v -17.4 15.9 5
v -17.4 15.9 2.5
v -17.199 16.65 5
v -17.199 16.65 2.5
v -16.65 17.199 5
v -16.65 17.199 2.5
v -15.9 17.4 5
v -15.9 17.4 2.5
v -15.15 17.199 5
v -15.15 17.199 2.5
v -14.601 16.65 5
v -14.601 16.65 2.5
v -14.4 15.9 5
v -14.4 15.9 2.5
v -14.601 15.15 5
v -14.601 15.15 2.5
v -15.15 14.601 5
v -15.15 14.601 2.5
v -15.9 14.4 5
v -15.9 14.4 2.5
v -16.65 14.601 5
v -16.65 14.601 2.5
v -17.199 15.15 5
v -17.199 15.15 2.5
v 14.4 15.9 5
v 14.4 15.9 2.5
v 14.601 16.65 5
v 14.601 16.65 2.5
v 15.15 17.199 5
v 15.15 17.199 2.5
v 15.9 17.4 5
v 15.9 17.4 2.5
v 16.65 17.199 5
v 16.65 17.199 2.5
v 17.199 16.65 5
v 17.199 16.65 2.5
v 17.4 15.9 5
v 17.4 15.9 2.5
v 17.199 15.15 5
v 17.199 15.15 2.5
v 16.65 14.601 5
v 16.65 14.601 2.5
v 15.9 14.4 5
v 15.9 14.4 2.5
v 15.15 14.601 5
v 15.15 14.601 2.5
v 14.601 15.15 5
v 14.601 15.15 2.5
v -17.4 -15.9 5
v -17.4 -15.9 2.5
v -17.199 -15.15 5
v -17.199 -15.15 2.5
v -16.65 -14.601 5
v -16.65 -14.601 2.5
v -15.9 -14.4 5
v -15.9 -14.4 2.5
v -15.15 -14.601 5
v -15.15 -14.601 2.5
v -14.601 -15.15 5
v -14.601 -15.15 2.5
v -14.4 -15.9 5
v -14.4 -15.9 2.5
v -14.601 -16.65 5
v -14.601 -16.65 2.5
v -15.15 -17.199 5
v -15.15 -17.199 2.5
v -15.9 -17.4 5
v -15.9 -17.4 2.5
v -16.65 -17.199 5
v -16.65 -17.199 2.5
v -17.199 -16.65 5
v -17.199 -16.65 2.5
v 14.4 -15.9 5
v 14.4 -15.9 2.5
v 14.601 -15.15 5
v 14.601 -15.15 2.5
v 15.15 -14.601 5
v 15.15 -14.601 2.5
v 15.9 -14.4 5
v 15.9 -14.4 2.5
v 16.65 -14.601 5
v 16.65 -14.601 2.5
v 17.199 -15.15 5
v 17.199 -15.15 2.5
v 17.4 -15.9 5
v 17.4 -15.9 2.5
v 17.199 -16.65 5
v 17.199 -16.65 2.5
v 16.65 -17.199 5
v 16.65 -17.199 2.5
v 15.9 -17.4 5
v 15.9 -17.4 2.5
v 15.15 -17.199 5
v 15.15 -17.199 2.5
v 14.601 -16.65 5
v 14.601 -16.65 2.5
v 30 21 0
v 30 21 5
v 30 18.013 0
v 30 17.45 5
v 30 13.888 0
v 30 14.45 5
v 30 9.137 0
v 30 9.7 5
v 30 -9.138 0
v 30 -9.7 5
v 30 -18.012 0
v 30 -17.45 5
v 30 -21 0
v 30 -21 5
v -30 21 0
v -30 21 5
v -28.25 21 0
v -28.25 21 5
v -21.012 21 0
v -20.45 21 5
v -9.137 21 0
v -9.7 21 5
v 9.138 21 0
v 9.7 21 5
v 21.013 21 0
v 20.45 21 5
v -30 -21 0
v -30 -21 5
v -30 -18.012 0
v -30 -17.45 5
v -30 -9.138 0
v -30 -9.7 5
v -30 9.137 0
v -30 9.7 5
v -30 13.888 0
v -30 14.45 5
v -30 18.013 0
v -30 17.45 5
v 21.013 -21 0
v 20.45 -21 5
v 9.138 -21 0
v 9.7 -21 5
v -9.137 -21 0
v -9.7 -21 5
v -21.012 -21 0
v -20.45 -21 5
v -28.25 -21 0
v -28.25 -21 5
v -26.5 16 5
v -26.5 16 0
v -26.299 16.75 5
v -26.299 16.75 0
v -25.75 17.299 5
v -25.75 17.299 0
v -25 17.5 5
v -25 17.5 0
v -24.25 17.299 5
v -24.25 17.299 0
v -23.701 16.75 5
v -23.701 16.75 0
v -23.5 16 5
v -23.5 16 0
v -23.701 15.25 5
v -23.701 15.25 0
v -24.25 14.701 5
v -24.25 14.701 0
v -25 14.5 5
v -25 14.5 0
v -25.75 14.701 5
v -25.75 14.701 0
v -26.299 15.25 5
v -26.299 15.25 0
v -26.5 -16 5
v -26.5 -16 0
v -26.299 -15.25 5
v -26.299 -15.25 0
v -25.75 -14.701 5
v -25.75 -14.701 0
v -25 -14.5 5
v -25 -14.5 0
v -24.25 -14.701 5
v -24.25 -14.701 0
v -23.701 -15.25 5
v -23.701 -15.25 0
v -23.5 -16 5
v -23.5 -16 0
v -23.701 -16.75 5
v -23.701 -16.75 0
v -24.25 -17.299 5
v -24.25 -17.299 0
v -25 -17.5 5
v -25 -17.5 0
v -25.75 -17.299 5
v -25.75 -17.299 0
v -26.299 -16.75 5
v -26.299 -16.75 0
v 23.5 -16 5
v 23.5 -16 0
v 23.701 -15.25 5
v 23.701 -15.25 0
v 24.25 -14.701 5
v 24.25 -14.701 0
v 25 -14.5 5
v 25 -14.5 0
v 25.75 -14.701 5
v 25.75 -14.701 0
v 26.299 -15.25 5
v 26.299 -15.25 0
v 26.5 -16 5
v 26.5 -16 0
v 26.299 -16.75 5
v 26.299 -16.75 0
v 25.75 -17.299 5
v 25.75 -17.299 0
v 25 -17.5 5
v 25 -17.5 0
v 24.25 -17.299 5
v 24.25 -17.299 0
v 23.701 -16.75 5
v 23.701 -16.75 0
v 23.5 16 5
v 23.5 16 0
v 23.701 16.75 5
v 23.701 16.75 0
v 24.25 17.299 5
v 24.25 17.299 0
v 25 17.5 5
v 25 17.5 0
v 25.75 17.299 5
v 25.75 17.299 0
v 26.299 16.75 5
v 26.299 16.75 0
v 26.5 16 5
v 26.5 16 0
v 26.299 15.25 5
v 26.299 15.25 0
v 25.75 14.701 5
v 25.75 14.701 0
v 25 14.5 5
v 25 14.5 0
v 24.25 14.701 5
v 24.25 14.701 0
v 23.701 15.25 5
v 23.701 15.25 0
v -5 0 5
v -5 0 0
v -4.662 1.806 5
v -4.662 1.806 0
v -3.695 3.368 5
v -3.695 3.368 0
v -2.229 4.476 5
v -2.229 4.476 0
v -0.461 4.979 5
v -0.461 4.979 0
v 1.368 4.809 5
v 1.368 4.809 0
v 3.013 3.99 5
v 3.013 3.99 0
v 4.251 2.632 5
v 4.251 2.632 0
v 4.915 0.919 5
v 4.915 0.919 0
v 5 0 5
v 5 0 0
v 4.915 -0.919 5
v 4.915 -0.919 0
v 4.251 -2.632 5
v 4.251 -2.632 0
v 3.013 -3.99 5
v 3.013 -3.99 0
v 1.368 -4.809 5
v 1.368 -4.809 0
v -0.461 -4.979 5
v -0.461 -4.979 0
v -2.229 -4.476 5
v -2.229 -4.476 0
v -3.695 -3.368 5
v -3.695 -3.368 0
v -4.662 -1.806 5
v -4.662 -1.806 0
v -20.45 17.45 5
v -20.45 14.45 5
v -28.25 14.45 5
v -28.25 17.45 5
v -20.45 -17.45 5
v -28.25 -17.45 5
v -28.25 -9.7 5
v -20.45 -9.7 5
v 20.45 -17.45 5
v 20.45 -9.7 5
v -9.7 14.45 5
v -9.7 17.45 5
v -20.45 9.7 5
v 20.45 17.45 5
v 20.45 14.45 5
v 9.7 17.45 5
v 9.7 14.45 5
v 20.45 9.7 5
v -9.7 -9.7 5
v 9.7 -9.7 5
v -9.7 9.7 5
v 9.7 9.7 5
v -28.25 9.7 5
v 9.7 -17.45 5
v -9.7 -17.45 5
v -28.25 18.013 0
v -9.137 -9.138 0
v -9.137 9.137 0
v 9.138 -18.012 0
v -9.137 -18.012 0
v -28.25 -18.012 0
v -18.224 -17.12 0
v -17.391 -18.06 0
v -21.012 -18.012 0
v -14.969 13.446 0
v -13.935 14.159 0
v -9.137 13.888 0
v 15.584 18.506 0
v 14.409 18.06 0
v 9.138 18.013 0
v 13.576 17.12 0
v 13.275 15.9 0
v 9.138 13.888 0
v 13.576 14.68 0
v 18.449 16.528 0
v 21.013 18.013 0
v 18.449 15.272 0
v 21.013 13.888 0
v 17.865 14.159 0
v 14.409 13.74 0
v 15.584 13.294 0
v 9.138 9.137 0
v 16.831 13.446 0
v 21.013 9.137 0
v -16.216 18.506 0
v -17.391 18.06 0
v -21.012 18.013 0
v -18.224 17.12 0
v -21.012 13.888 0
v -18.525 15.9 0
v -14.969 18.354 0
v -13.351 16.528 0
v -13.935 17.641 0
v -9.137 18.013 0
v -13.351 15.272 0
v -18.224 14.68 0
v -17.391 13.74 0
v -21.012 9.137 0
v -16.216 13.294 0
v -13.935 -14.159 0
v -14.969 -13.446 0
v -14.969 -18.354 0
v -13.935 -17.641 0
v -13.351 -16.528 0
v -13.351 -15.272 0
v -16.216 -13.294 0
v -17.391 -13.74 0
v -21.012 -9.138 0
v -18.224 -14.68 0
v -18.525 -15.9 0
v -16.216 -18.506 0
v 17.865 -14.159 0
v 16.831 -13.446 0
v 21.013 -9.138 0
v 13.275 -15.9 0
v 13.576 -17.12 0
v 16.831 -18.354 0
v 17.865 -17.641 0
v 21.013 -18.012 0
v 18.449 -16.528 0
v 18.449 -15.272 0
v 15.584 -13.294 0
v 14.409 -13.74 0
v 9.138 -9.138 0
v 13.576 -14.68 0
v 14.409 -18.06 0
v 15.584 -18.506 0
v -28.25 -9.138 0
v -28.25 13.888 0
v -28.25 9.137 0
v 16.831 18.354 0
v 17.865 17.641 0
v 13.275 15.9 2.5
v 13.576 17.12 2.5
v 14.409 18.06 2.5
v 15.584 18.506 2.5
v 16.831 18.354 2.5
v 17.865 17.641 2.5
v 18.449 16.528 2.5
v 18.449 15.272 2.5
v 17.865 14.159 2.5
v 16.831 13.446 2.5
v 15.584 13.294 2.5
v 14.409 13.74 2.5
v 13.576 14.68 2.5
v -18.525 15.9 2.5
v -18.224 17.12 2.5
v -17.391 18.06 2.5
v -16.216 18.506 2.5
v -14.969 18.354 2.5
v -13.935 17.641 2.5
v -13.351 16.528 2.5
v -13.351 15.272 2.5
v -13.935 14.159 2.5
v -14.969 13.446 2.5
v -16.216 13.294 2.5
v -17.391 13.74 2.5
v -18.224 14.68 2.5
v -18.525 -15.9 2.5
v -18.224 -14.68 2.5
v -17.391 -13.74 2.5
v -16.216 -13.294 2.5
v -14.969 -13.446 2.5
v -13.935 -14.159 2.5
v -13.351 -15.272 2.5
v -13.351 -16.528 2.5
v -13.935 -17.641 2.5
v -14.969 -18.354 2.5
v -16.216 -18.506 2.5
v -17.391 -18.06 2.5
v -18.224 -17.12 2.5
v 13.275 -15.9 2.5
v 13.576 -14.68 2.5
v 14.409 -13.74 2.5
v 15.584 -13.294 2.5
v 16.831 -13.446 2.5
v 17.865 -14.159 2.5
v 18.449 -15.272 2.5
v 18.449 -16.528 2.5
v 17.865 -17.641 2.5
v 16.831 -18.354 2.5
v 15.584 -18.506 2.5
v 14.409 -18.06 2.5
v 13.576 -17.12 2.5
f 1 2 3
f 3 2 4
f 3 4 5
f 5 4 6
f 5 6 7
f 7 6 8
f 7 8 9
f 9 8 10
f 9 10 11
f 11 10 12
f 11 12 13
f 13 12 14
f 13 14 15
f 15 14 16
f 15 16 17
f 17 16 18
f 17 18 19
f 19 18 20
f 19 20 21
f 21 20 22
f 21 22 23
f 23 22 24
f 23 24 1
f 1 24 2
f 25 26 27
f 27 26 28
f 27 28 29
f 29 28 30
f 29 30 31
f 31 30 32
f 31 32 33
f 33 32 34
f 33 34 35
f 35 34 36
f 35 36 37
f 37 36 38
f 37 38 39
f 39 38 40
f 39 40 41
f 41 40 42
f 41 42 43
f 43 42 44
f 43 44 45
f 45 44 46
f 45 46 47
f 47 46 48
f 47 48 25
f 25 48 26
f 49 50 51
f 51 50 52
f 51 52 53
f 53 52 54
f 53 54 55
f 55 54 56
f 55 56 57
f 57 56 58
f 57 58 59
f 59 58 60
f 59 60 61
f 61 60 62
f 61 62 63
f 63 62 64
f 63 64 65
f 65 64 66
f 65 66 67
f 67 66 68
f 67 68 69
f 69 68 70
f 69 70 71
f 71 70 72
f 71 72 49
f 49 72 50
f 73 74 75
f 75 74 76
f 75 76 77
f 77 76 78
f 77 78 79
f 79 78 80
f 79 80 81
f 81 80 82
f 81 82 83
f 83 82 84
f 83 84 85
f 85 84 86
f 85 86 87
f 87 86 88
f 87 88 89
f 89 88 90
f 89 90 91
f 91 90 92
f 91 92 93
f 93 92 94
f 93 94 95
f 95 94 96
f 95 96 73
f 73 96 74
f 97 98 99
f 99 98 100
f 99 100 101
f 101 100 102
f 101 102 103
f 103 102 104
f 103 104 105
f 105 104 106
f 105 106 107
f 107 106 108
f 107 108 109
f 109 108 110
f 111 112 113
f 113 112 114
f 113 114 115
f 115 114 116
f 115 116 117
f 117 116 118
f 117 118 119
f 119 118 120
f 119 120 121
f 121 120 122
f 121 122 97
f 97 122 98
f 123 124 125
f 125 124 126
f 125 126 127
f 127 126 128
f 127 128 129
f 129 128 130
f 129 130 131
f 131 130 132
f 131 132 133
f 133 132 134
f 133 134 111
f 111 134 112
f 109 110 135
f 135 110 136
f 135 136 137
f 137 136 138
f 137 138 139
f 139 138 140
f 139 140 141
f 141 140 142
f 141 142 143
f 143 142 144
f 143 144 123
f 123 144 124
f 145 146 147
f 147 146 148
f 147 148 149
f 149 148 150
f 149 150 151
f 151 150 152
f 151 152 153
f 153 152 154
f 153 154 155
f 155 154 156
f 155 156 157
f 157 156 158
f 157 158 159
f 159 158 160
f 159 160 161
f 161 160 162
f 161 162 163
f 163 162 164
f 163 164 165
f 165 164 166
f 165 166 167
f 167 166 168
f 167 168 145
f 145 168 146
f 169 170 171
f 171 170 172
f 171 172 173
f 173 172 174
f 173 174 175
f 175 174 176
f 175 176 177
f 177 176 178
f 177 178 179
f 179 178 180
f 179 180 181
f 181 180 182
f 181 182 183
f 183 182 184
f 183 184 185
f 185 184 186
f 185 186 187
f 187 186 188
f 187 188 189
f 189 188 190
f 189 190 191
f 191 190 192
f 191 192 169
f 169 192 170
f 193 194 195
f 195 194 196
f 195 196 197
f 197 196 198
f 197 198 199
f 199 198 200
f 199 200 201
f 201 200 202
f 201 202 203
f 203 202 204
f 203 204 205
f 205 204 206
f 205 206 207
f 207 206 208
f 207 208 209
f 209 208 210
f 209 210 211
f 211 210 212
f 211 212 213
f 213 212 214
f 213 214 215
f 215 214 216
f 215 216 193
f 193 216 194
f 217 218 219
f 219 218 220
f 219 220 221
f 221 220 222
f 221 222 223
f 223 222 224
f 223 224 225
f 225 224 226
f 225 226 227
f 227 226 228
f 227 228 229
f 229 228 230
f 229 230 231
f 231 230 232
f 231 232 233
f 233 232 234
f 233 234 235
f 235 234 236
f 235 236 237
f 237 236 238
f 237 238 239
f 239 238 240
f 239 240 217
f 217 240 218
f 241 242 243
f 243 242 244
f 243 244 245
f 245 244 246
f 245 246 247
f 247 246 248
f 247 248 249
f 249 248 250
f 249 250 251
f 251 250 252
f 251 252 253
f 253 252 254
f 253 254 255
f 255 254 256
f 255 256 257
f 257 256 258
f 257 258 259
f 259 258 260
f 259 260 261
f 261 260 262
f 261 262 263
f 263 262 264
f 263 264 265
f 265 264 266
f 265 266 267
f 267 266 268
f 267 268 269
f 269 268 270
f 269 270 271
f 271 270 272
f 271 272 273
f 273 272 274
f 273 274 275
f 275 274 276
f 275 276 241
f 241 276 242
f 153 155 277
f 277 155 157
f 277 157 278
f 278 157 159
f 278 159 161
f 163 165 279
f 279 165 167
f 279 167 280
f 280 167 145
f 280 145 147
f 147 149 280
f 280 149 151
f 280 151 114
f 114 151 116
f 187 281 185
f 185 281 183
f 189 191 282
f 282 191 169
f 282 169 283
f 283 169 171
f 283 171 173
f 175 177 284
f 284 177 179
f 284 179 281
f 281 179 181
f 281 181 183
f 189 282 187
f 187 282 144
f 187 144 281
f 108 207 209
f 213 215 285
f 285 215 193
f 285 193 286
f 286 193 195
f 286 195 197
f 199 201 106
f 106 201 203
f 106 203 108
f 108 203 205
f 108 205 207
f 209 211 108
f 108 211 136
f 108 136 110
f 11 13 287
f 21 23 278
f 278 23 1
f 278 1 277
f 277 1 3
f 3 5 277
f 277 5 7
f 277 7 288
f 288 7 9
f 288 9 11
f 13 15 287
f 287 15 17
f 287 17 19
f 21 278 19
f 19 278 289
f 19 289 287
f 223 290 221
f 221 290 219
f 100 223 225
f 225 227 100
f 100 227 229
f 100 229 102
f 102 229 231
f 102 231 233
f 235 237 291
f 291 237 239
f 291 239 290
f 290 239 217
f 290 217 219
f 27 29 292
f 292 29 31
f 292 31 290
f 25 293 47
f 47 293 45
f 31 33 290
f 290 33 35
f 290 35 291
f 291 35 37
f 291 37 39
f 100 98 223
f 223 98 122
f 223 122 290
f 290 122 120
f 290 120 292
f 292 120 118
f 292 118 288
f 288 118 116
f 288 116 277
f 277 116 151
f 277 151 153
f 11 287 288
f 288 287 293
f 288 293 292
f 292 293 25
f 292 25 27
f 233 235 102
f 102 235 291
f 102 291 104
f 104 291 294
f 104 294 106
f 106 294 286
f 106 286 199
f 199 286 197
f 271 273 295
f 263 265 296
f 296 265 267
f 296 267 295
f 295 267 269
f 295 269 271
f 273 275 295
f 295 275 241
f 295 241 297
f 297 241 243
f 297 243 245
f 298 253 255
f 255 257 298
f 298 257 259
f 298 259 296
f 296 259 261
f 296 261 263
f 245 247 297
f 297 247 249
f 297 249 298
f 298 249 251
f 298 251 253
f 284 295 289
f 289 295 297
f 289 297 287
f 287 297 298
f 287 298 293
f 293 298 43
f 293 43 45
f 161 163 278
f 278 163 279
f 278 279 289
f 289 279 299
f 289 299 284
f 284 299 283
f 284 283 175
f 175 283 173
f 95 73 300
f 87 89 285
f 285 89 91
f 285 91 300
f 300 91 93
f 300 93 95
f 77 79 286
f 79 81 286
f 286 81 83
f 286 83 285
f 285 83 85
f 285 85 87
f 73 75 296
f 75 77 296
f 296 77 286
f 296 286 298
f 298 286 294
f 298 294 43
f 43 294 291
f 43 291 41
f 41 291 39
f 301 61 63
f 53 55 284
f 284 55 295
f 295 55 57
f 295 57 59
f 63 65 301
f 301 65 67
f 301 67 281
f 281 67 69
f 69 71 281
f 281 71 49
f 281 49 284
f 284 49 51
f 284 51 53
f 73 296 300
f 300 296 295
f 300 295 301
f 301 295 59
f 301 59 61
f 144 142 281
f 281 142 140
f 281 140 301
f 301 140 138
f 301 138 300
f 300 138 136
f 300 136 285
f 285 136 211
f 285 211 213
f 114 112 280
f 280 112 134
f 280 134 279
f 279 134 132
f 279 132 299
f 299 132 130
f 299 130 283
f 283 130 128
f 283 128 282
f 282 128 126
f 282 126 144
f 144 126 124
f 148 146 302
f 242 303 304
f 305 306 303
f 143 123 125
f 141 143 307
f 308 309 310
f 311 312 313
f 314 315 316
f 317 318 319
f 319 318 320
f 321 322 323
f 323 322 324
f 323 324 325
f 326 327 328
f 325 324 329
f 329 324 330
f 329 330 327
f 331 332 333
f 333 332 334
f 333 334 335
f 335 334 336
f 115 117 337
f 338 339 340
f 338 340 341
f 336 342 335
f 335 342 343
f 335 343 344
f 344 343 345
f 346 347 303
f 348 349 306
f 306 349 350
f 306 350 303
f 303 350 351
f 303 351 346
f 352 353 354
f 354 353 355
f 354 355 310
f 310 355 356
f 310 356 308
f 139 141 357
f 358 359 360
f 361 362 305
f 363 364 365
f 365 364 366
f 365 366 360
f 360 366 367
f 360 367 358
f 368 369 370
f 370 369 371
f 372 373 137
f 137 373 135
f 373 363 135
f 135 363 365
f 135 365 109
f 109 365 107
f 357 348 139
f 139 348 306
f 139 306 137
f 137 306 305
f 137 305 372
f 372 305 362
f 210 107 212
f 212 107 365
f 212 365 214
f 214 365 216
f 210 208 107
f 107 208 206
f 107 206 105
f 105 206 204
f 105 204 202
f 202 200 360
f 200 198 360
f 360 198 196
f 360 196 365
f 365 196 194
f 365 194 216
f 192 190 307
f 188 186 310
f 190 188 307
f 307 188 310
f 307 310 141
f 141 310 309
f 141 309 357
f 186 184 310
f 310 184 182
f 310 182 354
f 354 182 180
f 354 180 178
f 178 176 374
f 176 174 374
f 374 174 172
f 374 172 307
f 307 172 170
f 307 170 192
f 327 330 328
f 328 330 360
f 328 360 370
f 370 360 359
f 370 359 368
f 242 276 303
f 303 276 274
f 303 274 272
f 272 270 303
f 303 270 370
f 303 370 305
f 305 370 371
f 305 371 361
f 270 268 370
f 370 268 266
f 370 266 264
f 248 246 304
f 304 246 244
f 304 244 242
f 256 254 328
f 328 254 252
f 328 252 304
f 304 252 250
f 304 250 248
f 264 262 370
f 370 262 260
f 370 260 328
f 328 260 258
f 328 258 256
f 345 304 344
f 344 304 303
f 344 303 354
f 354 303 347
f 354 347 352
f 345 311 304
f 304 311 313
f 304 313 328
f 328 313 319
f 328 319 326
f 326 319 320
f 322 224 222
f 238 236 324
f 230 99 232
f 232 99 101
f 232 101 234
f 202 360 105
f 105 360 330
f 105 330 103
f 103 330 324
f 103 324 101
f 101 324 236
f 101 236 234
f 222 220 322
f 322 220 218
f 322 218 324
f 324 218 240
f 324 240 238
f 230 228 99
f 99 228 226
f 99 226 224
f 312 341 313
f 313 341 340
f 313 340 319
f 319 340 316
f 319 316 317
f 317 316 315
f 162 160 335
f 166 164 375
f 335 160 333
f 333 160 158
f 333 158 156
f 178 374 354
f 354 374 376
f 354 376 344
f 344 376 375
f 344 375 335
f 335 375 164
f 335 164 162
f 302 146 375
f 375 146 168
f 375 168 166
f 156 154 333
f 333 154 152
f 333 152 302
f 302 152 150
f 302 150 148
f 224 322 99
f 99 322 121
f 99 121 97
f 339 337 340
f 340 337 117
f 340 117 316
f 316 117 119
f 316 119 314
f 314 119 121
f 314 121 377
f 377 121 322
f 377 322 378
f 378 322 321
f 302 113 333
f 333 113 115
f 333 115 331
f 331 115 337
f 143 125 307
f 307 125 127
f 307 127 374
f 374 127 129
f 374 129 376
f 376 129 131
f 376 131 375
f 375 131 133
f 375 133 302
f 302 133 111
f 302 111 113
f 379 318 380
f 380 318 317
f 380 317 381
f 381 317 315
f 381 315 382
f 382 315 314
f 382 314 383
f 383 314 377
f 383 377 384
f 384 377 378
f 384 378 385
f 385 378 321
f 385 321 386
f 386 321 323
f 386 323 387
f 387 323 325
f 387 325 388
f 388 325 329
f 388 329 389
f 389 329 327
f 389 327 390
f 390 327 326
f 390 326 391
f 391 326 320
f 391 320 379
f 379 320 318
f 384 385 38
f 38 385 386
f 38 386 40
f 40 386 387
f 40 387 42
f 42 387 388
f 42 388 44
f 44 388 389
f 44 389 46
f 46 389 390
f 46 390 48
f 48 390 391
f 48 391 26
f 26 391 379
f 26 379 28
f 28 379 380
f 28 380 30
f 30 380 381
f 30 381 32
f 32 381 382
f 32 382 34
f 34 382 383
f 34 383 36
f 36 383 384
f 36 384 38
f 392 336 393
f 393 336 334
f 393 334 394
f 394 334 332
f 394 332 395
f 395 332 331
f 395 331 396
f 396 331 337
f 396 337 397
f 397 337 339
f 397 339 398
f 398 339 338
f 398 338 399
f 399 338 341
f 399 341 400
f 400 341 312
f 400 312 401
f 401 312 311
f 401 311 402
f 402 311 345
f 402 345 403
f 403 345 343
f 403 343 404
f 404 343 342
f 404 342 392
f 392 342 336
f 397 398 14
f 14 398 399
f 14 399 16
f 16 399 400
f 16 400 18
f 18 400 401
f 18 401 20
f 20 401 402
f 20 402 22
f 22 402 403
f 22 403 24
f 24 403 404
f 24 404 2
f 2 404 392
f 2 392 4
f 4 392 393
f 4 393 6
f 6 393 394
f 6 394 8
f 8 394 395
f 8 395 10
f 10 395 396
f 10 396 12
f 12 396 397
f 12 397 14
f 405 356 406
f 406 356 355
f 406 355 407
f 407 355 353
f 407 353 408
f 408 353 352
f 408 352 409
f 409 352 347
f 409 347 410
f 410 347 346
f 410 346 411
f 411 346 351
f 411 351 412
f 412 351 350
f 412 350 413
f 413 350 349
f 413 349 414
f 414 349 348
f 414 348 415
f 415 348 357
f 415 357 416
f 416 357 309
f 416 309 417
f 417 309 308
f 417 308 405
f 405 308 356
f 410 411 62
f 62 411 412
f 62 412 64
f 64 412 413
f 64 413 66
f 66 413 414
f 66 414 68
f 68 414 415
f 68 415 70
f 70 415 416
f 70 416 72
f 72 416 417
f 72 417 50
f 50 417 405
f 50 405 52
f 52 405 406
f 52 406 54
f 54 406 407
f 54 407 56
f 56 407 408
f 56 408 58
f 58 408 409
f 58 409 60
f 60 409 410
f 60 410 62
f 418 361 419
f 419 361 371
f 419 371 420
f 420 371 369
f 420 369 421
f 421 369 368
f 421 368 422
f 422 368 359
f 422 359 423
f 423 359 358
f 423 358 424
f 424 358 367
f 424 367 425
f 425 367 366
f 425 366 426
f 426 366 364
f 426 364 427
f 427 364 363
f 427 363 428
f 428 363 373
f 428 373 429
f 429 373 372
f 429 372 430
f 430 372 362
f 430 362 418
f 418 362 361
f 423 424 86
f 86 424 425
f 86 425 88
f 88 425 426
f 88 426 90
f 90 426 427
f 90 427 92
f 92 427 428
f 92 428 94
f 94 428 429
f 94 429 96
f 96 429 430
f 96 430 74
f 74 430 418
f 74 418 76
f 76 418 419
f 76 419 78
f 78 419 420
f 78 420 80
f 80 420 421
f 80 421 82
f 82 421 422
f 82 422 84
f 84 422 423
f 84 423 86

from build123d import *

# Parameters (mm, degrees)
SKETCH1_W           = 60
SKETCH1_H           = 42
SKETCH1_R           = 1.5
SKETCH1_R_2         = 5
BOSS_EXTRUDE1_DEPTH = 5
SKETCH3_R           = 2.625
CUT_EXTRUDE4_DEPTH  = 2.5


with BuildPart() as part:
    # Sketch1 → Boss-Extrude1 (new body)
    with BuildSketch(Plane.XY):
        Rectangle(SKETCH1_W, SKETCH1_H)
        with Locations((-15.9, 15.9)):
            Circle(SKETCH1_R, mode=Mode.SUBTRACT)
        with Locations((15.9, 15.9)):
            Circle(SKETCH1_R, mode=Mode.SUBTRACT)
        with Locations((15.9, -15.9)):
            Circle(SKETCH1_R, mode=Mode.SUBTRACT)
        with Locations((-15.9, -15.9)):
            Circle(SKETCH1_R, mode=Mode.SUBTRACT)
        with Locations((-25, 16)):
            Circle(SKETCH1_R, mode=Mode.SUBTRACT)
        Circle(SKETCH1_R_2, mode=Mode.SUBTRACT)
        with Locations((25, 16)):
            Circle(SKETCH1_R, mode=Mode.SUBTRACT)
        with Locations((25, -16)):
            Circle(SKETCH1_R, mode=Mode.SUBTRACT)
        with Locations((-25, -16)):
            Circle(SKETCH1_R, mode=Mode.SUBTRACT)
    extrude(amount=BOSS_EXTRUDE1_DEPTH)

    # Sketch3 → Cut-Extrude4 (cut)
    with BuildSketch(Plane(origin=(0, 0, 0), x_dir=(-1, 0, 0), z_dir=(0, 0, -1))):
        with Locations((-15.9, 15.9)):
            Circle(SKETCH3_R)
        with Locations((15.9, 15.9)):
            Circle(SKETCH3_R)
        with Locations((15.9, -15.9)):
            Circle(SKETCH3_R)
        with Locations((-15.9, -15.9)):
            Circle(SKETCH3_R)
    extrude(amount=-CUT_EXTRUDE4_DEPTH, mode=Mode.SUBTRACT)


solid = part.part
